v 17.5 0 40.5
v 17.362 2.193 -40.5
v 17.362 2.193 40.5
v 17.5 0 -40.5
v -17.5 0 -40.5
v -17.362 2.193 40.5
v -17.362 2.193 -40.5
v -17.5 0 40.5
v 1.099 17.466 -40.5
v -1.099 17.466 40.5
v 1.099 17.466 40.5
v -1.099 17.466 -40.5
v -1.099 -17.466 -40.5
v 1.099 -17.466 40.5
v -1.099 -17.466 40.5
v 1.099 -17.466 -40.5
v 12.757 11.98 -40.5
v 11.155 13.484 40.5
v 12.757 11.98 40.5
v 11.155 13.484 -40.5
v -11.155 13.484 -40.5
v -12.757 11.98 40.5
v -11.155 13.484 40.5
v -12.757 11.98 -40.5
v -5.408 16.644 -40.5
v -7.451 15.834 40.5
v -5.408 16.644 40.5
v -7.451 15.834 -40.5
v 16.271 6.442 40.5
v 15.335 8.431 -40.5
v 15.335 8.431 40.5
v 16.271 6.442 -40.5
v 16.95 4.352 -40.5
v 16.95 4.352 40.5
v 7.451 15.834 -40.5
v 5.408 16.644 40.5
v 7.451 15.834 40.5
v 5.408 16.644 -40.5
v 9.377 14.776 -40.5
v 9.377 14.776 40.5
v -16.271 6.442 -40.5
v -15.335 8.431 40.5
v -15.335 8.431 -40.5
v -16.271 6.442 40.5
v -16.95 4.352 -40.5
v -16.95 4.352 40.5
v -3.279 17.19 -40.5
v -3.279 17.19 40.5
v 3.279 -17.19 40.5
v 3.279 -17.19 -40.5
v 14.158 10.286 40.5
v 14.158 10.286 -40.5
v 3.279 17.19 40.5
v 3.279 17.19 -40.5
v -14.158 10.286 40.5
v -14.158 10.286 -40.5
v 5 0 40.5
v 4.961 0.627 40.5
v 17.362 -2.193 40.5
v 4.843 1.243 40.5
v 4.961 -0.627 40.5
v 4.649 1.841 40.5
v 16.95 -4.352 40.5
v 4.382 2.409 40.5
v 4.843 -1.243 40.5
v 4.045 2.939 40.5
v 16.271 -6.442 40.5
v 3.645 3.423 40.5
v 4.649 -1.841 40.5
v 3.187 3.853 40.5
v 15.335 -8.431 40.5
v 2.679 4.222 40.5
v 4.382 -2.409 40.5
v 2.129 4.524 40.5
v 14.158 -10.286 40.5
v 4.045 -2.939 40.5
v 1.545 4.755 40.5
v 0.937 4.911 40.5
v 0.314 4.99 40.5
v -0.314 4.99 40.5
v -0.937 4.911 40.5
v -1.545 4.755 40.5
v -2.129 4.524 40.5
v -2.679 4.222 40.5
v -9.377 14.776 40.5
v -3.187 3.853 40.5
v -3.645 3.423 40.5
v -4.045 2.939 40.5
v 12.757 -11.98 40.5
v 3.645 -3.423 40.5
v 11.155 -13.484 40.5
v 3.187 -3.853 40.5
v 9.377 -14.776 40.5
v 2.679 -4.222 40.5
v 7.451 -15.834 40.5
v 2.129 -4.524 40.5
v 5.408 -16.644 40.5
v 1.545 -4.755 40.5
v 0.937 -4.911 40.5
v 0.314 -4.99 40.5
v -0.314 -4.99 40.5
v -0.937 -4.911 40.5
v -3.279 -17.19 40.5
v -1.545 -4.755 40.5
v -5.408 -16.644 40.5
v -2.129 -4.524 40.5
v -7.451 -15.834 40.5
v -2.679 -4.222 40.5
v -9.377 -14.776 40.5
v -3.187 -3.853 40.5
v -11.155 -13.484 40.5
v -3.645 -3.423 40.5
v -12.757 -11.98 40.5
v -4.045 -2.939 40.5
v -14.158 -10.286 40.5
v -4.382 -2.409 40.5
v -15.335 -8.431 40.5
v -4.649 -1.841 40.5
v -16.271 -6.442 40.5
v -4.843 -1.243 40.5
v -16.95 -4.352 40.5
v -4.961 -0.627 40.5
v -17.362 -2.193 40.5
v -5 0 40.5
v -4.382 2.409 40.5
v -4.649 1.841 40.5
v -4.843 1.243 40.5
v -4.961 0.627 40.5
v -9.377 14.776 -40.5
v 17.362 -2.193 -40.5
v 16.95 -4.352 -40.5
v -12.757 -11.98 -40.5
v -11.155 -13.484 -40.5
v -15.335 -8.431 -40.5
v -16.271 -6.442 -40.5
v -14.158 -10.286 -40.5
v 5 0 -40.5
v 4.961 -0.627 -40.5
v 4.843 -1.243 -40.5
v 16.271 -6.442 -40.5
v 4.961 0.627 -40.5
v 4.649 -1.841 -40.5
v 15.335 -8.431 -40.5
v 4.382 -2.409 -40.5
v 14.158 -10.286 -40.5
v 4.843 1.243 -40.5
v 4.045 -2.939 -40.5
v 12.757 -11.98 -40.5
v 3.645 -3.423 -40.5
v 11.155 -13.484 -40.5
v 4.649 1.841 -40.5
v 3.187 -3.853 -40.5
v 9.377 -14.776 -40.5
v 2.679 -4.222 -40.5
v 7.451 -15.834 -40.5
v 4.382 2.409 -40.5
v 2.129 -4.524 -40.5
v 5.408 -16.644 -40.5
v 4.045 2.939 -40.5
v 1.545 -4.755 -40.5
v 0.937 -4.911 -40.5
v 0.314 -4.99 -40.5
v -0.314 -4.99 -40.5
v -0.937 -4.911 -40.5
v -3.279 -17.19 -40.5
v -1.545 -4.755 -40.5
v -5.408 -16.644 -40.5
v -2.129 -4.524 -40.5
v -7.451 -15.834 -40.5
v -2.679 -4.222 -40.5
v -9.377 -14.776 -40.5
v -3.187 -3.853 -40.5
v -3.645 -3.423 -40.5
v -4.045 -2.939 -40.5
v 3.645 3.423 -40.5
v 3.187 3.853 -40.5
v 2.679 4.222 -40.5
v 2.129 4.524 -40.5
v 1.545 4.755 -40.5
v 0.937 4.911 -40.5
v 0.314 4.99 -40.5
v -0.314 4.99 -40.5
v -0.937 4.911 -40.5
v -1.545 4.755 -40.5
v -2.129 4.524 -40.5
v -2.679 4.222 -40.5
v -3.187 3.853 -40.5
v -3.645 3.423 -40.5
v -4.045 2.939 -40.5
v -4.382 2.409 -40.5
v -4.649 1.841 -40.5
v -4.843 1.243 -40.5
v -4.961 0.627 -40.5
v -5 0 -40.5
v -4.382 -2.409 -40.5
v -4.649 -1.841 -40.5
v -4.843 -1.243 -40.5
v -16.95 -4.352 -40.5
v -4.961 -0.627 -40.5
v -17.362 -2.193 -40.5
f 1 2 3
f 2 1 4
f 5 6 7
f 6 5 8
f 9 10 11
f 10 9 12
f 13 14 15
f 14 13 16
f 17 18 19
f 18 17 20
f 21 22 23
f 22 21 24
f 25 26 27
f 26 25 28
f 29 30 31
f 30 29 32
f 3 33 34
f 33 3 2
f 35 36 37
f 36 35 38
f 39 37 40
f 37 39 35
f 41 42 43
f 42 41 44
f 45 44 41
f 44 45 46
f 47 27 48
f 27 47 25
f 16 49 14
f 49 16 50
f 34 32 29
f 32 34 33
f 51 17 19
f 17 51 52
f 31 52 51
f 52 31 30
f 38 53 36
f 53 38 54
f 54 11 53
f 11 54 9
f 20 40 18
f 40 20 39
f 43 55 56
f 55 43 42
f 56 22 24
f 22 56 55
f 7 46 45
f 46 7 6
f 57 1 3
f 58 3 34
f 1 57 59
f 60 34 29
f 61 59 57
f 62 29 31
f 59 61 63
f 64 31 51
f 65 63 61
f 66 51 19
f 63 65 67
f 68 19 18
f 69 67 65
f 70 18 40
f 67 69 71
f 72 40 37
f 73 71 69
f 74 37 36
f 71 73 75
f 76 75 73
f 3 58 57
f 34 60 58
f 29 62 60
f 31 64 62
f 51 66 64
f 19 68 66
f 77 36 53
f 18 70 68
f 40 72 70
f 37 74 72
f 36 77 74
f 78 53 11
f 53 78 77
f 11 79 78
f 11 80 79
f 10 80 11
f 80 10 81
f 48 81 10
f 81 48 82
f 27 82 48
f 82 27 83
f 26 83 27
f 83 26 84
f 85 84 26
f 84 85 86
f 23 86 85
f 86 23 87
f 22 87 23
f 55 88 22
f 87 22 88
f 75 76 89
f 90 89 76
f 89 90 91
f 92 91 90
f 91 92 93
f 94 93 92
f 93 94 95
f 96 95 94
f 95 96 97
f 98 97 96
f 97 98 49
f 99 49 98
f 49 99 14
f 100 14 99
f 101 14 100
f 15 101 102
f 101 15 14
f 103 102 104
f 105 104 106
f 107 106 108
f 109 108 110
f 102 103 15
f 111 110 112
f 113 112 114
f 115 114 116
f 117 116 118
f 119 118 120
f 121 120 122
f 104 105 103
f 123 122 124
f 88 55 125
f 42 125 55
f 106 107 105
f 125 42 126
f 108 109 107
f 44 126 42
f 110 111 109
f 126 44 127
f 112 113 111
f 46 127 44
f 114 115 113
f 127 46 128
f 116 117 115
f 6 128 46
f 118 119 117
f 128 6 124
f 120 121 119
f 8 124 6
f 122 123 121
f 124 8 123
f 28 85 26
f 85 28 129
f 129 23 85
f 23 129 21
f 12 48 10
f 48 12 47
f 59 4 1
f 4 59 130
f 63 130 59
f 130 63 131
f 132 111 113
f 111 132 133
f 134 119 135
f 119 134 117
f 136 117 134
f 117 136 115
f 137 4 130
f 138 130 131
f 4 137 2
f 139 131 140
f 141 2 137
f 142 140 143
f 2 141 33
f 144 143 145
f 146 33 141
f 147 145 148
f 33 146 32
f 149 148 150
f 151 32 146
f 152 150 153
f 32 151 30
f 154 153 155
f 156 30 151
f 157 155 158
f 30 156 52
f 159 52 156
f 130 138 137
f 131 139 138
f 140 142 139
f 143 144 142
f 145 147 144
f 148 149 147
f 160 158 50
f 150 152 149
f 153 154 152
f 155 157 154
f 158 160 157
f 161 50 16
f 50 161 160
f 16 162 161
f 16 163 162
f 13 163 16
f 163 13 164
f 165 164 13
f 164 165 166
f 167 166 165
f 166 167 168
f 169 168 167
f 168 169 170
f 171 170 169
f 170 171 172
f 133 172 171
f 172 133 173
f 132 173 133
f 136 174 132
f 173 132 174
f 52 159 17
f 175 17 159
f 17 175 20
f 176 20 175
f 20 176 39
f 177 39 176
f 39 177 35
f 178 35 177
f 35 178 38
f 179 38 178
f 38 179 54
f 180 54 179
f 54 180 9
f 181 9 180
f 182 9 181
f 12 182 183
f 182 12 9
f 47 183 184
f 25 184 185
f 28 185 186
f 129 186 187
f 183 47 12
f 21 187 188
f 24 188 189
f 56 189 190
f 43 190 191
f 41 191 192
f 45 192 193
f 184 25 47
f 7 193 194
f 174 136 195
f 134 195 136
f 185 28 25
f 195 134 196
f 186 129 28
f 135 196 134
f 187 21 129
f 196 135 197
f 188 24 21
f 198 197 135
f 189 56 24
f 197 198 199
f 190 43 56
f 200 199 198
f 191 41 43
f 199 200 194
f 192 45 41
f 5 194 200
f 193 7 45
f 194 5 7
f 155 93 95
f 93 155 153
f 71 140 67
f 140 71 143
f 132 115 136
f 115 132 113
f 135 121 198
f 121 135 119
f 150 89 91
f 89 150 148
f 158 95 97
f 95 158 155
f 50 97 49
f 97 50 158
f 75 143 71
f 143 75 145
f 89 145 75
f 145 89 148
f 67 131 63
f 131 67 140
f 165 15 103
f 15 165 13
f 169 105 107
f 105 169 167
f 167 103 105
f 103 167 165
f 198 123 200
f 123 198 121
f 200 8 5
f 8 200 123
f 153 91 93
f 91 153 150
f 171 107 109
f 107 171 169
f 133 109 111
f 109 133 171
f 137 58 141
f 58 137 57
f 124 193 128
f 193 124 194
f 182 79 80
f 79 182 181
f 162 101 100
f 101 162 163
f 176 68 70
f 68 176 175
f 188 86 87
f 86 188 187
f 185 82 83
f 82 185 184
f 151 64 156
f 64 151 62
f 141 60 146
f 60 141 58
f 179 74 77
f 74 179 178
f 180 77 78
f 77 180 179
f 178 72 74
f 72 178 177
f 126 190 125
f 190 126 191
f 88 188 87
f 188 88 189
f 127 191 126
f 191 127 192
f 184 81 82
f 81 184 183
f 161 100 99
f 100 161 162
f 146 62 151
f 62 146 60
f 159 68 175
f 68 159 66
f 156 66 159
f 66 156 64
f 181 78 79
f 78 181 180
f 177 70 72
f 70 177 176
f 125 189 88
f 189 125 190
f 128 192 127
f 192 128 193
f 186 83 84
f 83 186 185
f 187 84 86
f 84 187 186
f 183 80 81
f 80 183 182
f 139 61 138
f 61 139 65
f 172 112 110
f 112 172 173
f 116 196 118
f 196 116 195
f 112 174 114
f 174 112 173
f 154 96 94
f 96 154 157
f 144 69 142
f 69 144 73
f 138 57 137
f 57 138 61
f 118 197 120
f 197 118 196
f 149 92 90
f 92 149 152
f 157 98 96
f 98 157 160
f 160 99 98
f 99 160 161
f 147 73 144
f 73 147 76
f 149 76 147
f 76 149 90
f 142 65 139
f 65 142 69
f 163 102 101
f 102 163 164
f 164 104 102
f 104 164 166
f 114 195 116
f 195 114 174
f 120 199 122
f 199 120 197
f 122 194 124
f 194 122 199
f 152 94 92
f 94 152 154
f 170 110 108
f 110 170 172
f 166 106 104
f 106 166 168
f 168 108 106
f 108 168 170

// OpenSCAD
$fn = 50;


difference() {
	union() {
		translate(v = [0, 0, -40.5000000000]) {
			cylinder(h = 81, r = 17.5000000000);
		}
	}
	union() {
		translate(v = [0, 0, -100.0000000000]) {
			cylinder(h = 200, r = 5);
		}
	}
}
